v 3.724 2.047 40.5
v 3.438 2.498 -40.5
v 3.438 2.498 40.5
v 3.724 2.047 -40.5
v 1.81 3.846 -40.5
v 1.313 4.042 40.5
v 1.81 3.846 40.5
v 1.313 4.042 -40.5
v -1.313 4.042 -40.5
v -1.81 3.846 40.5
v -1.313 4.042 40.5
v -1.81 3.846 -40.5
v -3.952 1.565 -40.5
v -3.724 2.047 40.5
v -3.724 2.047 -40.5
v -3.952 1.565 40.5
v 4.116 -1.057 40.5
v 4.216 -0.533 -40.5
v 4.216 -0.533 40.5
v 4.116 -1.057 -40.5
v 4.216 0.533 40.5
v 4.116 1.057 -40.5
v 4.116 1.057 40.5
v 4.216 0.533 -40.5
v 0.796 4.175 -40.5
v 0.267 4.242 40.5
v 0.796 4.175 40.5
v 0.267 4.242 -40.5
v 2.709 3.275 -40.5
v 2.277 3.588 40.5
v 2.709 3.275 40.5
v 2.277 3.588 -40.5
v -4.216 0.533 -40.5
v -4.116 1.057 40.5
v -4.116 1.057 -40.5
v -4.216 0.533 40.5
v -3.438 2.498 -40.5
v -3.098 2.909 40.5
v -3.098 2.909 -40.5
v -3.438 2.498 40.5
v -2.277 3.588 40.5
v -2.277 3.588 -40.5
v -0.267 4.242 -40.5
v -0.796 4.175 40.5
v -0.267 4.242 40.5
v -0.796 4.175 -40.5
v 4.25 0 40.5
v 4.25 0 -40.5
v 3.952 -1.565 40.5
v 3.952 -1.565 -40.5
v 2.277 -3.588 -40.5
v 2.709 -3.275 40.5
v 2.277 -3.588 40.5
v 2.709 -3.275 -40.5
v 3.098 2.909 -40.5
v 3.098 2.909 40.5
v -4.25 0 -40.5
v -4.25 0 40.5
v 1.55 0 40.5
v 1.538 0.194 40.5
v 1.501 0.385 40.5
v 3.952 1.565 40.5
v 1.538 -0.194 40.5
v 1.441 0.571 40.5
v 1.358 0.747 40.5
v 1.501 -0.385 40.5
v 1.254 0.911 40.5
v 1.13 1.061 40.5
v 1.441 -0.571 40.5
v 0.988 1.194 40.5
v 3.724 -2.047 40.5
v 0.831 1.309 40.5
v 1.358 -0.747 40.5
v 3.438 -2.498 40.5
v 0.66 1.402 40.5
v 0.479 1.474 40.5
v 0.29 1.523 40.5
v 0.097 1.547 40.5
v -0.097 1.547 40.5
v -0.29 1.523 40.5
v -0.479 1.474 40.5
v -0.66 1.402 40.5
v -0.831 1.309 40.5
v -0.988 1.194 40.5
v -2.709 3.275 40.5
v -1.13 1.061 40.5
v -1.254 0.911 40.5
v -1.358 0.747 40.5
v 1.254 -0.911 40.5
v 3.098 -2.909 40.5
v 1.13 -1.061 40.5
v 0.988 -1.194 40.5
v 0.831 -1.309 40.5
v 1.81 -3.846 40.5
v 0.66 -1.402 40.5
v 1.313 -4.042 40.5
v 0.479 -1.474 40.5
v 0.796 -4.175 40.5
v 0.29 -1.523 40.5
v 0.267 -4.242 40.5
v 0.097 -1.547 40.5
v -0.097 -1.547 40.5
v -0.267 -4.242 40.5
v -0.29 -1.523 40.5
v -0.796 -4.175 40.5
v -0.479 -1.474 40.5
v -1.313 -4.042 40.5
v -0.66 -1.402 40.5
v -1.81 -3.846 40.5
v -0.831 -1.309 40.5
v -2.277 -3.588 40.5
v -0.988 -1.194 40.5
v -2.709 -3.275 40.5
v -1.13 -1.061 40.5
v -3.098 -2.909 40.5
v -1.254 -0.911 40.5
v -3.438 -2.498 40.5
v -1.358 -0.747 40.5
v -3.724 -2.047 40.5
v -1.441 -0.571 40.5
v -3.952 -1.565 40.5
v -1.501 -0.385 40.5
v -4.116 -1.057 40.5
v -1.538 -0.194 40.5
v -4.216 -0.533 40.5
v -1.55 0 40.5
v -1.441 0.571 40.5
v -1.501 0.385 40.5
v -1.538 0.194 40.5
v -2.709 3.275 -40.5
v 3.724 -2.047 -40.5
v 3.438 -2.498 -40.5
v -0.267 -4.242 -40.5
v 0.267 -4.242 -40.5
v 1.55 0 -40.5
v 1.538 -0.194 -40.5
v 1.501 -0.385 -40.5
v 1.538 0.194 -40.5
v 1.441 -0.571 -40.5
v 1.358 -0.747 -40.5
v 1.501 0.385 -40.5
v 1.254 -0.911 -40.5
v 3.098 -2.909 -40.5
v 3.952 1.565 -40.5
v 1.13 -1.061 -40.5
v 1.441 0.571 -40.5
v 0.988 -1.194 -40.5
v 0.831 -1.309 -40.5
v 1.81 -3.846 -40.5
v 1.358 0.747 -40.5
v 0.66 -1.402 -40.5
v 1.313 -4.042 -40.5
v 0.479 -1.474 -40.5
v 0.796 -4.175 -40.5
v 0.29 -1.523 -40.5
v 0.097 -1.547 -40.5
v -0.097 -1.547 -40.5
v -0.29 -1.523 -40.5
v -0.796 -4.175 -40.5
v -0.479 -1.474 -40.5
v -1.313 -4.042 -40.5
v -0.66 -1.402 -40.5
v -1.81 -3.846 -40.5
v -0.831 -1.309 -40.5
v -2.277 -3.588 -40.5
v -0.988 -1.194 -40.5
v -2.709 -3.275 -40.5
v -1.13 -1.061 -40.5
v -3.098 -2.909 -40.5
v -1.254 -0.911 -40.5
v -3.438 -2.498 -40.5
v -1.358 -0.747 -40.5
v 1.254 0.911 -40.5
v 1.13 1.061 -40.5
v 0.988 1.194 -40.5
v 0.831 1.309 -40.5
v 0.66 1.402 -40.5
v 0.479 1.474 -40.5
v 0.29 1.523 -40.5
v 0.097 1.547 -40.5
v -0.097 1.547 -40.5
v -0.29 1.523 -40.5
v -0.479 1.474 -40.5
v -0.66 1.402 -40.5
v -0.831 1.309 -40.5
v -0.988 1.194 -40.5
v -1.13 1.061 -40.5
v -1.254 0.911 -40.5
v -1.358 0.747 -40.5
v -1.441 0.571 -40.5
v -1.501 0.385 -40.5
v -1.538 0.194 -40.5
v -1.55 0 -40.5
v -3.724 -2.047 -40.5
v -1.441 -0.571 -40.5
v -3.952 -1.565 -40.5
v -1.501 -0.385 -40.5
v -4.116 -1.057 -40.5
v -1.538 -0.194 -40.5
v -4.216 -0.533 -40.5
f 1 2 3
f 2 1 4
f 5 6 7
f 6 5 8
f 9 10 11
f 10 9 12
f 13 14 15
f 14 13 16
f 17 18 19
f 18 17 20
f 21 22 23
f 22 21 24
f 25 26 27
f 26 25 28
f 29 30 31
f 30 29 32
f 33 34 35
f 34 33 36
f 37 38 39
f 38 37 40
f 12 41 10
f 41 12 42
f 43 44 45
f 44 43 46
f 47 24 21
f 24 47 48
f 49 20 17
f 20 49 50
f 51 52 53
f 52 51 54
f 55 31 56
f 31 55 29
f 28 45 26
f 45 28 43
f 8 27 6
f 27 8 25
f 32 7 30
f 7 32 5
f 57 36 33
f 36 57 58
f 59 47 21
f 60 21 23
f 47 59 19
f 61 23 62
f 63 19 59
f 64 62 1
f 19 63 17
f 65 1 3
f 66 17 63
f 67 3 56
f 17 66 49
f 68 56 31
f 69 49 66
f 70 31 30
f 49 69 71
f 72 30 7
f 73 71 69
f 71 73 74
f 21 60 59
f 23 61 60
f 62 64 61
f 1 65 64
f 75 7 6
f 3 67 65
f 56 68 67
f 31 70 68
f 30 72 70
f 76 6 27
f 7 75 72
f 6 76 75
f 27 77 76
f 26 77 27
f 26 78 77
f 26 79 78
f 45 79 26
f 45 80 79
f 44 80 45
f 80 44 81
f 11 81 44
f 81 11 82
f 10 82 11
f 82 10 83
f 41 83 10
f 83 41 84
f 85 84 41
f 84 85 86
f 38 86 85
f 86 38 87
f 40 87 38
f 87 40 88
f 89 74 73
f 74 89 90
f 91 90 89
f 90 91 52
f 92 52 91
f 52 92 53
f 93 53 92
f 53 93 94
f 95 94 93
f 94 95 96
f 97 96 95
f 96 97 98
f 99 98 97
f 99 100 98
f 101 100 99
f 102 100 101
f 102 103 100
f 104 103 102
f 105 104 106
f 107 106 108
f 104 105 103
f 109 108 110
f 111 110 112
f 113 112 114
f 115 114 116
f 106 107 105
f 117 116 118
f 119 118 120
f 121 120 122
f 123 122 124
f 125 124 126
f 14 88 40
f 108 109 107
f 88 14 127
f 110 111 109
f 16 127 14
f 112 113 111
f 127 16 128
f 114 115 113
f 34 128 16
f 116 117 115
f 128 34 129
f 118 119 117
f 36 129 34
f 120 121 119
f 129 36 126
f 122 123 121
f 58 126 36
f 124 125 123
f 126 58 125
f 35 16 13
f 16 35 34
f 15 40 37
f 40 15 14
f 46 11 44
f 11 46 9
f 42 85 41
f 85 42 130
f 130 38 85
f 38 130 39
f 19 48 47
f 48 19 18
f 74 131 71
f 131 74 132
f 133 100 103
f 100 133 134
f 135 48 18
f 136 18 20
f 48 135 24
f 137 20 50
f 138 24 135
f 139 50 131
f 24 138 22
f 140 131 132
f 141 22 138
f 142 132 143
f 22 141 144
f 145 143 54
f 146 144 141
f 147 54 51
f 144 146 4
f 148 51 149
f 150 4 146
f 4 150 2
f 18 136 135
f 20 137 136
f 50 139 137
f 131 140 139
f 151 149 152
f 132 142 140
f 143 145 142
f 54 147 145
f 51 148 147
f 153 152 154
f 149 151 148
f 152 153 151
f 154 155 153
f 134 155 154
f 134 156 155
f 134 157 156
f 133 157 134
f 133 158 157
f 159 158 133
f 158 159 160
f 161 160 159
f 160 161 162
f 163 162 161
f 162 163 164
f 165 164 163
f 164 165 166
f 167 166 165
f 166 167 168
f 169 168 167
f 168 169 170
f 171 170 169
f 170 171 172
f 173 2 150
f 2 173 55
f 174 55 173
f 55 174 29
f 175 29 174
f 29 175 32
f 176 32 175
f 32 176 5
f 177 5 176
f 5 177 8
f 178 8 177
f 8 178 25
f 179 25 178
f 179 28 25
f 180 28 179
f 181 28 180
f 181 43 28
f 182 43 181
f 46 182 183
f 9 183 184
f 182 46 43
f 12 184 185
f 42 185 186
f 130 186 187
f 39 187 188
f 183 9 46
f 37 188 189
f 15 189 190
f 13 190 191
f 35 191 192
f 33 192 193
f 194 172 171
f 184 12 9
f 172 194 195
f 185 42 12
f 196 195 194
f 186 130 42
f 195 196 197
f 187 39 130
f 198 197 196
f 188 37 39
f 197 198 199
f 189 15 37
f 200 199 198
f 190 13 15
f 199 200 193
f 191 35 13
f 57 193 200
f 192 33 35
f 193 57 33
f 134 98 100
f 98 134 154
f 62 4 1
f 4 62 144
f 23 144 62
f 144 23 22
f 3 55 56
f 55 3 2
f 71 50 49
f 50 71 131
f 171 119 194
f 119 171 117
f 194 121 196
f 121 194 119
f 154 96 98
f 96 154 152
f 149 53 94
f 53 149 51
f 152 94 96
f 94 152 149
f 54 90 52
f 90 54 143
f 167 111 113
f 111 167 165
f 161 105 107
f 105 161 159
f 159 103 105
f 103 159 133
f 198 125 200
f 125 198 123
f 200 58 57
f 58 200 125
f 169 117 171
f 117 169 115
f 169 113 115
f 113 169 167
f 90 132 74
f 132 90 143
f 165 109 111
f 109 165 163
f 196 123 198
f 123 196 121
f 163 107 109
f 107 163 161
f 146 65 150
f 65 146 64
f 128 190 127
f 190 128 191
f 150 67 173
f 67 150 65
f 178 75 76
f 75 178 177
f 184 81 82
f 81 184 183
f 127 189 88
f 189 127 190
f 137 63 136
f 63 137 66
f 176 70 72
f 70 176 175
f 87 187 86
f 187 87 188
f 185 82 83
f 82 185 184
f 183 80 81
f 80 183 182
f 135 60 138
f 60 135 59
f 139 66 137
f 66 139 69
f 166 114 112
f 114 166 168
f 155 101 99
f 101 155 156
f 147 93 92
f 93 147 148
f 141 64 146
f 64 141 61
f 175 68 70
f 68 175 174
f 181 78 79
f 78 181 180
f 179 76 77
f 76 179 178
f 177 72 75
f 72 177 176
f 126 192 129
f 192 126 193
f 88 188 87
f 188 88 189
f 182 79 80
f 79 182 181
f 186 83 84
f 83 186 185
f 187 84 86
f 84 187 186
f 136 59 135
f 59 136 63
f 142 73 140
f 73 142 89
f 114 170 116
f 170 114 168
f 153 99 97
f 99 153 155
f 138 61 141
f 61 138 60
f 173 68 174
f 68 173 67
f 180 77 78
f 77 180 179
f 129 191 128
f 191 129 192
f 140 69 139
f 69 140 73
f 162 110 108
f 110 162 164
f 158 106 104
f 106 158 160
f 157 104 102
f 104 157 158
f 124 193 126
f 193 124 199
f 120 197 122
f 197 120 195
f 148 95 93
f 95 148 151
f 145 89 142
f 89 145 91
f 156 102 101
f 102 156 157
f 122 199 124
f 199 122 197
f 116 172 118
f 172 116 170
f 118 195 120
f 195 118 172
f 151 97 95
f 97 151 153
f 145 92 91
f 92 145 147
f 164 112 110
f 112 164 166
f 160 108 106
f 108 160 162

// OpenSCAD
$fn = 50;


difference() {
	union() {
		translate(v = [0, 0, -40.5000000000]) {
			cylinder(h = 81, r = 4.2500000000);
		}
	}
	union() {
		translate(v = [0, 0, -100.0000000000]) {
			cylinder(h = 200, r = 1.5500000000);
		}
	}
}
